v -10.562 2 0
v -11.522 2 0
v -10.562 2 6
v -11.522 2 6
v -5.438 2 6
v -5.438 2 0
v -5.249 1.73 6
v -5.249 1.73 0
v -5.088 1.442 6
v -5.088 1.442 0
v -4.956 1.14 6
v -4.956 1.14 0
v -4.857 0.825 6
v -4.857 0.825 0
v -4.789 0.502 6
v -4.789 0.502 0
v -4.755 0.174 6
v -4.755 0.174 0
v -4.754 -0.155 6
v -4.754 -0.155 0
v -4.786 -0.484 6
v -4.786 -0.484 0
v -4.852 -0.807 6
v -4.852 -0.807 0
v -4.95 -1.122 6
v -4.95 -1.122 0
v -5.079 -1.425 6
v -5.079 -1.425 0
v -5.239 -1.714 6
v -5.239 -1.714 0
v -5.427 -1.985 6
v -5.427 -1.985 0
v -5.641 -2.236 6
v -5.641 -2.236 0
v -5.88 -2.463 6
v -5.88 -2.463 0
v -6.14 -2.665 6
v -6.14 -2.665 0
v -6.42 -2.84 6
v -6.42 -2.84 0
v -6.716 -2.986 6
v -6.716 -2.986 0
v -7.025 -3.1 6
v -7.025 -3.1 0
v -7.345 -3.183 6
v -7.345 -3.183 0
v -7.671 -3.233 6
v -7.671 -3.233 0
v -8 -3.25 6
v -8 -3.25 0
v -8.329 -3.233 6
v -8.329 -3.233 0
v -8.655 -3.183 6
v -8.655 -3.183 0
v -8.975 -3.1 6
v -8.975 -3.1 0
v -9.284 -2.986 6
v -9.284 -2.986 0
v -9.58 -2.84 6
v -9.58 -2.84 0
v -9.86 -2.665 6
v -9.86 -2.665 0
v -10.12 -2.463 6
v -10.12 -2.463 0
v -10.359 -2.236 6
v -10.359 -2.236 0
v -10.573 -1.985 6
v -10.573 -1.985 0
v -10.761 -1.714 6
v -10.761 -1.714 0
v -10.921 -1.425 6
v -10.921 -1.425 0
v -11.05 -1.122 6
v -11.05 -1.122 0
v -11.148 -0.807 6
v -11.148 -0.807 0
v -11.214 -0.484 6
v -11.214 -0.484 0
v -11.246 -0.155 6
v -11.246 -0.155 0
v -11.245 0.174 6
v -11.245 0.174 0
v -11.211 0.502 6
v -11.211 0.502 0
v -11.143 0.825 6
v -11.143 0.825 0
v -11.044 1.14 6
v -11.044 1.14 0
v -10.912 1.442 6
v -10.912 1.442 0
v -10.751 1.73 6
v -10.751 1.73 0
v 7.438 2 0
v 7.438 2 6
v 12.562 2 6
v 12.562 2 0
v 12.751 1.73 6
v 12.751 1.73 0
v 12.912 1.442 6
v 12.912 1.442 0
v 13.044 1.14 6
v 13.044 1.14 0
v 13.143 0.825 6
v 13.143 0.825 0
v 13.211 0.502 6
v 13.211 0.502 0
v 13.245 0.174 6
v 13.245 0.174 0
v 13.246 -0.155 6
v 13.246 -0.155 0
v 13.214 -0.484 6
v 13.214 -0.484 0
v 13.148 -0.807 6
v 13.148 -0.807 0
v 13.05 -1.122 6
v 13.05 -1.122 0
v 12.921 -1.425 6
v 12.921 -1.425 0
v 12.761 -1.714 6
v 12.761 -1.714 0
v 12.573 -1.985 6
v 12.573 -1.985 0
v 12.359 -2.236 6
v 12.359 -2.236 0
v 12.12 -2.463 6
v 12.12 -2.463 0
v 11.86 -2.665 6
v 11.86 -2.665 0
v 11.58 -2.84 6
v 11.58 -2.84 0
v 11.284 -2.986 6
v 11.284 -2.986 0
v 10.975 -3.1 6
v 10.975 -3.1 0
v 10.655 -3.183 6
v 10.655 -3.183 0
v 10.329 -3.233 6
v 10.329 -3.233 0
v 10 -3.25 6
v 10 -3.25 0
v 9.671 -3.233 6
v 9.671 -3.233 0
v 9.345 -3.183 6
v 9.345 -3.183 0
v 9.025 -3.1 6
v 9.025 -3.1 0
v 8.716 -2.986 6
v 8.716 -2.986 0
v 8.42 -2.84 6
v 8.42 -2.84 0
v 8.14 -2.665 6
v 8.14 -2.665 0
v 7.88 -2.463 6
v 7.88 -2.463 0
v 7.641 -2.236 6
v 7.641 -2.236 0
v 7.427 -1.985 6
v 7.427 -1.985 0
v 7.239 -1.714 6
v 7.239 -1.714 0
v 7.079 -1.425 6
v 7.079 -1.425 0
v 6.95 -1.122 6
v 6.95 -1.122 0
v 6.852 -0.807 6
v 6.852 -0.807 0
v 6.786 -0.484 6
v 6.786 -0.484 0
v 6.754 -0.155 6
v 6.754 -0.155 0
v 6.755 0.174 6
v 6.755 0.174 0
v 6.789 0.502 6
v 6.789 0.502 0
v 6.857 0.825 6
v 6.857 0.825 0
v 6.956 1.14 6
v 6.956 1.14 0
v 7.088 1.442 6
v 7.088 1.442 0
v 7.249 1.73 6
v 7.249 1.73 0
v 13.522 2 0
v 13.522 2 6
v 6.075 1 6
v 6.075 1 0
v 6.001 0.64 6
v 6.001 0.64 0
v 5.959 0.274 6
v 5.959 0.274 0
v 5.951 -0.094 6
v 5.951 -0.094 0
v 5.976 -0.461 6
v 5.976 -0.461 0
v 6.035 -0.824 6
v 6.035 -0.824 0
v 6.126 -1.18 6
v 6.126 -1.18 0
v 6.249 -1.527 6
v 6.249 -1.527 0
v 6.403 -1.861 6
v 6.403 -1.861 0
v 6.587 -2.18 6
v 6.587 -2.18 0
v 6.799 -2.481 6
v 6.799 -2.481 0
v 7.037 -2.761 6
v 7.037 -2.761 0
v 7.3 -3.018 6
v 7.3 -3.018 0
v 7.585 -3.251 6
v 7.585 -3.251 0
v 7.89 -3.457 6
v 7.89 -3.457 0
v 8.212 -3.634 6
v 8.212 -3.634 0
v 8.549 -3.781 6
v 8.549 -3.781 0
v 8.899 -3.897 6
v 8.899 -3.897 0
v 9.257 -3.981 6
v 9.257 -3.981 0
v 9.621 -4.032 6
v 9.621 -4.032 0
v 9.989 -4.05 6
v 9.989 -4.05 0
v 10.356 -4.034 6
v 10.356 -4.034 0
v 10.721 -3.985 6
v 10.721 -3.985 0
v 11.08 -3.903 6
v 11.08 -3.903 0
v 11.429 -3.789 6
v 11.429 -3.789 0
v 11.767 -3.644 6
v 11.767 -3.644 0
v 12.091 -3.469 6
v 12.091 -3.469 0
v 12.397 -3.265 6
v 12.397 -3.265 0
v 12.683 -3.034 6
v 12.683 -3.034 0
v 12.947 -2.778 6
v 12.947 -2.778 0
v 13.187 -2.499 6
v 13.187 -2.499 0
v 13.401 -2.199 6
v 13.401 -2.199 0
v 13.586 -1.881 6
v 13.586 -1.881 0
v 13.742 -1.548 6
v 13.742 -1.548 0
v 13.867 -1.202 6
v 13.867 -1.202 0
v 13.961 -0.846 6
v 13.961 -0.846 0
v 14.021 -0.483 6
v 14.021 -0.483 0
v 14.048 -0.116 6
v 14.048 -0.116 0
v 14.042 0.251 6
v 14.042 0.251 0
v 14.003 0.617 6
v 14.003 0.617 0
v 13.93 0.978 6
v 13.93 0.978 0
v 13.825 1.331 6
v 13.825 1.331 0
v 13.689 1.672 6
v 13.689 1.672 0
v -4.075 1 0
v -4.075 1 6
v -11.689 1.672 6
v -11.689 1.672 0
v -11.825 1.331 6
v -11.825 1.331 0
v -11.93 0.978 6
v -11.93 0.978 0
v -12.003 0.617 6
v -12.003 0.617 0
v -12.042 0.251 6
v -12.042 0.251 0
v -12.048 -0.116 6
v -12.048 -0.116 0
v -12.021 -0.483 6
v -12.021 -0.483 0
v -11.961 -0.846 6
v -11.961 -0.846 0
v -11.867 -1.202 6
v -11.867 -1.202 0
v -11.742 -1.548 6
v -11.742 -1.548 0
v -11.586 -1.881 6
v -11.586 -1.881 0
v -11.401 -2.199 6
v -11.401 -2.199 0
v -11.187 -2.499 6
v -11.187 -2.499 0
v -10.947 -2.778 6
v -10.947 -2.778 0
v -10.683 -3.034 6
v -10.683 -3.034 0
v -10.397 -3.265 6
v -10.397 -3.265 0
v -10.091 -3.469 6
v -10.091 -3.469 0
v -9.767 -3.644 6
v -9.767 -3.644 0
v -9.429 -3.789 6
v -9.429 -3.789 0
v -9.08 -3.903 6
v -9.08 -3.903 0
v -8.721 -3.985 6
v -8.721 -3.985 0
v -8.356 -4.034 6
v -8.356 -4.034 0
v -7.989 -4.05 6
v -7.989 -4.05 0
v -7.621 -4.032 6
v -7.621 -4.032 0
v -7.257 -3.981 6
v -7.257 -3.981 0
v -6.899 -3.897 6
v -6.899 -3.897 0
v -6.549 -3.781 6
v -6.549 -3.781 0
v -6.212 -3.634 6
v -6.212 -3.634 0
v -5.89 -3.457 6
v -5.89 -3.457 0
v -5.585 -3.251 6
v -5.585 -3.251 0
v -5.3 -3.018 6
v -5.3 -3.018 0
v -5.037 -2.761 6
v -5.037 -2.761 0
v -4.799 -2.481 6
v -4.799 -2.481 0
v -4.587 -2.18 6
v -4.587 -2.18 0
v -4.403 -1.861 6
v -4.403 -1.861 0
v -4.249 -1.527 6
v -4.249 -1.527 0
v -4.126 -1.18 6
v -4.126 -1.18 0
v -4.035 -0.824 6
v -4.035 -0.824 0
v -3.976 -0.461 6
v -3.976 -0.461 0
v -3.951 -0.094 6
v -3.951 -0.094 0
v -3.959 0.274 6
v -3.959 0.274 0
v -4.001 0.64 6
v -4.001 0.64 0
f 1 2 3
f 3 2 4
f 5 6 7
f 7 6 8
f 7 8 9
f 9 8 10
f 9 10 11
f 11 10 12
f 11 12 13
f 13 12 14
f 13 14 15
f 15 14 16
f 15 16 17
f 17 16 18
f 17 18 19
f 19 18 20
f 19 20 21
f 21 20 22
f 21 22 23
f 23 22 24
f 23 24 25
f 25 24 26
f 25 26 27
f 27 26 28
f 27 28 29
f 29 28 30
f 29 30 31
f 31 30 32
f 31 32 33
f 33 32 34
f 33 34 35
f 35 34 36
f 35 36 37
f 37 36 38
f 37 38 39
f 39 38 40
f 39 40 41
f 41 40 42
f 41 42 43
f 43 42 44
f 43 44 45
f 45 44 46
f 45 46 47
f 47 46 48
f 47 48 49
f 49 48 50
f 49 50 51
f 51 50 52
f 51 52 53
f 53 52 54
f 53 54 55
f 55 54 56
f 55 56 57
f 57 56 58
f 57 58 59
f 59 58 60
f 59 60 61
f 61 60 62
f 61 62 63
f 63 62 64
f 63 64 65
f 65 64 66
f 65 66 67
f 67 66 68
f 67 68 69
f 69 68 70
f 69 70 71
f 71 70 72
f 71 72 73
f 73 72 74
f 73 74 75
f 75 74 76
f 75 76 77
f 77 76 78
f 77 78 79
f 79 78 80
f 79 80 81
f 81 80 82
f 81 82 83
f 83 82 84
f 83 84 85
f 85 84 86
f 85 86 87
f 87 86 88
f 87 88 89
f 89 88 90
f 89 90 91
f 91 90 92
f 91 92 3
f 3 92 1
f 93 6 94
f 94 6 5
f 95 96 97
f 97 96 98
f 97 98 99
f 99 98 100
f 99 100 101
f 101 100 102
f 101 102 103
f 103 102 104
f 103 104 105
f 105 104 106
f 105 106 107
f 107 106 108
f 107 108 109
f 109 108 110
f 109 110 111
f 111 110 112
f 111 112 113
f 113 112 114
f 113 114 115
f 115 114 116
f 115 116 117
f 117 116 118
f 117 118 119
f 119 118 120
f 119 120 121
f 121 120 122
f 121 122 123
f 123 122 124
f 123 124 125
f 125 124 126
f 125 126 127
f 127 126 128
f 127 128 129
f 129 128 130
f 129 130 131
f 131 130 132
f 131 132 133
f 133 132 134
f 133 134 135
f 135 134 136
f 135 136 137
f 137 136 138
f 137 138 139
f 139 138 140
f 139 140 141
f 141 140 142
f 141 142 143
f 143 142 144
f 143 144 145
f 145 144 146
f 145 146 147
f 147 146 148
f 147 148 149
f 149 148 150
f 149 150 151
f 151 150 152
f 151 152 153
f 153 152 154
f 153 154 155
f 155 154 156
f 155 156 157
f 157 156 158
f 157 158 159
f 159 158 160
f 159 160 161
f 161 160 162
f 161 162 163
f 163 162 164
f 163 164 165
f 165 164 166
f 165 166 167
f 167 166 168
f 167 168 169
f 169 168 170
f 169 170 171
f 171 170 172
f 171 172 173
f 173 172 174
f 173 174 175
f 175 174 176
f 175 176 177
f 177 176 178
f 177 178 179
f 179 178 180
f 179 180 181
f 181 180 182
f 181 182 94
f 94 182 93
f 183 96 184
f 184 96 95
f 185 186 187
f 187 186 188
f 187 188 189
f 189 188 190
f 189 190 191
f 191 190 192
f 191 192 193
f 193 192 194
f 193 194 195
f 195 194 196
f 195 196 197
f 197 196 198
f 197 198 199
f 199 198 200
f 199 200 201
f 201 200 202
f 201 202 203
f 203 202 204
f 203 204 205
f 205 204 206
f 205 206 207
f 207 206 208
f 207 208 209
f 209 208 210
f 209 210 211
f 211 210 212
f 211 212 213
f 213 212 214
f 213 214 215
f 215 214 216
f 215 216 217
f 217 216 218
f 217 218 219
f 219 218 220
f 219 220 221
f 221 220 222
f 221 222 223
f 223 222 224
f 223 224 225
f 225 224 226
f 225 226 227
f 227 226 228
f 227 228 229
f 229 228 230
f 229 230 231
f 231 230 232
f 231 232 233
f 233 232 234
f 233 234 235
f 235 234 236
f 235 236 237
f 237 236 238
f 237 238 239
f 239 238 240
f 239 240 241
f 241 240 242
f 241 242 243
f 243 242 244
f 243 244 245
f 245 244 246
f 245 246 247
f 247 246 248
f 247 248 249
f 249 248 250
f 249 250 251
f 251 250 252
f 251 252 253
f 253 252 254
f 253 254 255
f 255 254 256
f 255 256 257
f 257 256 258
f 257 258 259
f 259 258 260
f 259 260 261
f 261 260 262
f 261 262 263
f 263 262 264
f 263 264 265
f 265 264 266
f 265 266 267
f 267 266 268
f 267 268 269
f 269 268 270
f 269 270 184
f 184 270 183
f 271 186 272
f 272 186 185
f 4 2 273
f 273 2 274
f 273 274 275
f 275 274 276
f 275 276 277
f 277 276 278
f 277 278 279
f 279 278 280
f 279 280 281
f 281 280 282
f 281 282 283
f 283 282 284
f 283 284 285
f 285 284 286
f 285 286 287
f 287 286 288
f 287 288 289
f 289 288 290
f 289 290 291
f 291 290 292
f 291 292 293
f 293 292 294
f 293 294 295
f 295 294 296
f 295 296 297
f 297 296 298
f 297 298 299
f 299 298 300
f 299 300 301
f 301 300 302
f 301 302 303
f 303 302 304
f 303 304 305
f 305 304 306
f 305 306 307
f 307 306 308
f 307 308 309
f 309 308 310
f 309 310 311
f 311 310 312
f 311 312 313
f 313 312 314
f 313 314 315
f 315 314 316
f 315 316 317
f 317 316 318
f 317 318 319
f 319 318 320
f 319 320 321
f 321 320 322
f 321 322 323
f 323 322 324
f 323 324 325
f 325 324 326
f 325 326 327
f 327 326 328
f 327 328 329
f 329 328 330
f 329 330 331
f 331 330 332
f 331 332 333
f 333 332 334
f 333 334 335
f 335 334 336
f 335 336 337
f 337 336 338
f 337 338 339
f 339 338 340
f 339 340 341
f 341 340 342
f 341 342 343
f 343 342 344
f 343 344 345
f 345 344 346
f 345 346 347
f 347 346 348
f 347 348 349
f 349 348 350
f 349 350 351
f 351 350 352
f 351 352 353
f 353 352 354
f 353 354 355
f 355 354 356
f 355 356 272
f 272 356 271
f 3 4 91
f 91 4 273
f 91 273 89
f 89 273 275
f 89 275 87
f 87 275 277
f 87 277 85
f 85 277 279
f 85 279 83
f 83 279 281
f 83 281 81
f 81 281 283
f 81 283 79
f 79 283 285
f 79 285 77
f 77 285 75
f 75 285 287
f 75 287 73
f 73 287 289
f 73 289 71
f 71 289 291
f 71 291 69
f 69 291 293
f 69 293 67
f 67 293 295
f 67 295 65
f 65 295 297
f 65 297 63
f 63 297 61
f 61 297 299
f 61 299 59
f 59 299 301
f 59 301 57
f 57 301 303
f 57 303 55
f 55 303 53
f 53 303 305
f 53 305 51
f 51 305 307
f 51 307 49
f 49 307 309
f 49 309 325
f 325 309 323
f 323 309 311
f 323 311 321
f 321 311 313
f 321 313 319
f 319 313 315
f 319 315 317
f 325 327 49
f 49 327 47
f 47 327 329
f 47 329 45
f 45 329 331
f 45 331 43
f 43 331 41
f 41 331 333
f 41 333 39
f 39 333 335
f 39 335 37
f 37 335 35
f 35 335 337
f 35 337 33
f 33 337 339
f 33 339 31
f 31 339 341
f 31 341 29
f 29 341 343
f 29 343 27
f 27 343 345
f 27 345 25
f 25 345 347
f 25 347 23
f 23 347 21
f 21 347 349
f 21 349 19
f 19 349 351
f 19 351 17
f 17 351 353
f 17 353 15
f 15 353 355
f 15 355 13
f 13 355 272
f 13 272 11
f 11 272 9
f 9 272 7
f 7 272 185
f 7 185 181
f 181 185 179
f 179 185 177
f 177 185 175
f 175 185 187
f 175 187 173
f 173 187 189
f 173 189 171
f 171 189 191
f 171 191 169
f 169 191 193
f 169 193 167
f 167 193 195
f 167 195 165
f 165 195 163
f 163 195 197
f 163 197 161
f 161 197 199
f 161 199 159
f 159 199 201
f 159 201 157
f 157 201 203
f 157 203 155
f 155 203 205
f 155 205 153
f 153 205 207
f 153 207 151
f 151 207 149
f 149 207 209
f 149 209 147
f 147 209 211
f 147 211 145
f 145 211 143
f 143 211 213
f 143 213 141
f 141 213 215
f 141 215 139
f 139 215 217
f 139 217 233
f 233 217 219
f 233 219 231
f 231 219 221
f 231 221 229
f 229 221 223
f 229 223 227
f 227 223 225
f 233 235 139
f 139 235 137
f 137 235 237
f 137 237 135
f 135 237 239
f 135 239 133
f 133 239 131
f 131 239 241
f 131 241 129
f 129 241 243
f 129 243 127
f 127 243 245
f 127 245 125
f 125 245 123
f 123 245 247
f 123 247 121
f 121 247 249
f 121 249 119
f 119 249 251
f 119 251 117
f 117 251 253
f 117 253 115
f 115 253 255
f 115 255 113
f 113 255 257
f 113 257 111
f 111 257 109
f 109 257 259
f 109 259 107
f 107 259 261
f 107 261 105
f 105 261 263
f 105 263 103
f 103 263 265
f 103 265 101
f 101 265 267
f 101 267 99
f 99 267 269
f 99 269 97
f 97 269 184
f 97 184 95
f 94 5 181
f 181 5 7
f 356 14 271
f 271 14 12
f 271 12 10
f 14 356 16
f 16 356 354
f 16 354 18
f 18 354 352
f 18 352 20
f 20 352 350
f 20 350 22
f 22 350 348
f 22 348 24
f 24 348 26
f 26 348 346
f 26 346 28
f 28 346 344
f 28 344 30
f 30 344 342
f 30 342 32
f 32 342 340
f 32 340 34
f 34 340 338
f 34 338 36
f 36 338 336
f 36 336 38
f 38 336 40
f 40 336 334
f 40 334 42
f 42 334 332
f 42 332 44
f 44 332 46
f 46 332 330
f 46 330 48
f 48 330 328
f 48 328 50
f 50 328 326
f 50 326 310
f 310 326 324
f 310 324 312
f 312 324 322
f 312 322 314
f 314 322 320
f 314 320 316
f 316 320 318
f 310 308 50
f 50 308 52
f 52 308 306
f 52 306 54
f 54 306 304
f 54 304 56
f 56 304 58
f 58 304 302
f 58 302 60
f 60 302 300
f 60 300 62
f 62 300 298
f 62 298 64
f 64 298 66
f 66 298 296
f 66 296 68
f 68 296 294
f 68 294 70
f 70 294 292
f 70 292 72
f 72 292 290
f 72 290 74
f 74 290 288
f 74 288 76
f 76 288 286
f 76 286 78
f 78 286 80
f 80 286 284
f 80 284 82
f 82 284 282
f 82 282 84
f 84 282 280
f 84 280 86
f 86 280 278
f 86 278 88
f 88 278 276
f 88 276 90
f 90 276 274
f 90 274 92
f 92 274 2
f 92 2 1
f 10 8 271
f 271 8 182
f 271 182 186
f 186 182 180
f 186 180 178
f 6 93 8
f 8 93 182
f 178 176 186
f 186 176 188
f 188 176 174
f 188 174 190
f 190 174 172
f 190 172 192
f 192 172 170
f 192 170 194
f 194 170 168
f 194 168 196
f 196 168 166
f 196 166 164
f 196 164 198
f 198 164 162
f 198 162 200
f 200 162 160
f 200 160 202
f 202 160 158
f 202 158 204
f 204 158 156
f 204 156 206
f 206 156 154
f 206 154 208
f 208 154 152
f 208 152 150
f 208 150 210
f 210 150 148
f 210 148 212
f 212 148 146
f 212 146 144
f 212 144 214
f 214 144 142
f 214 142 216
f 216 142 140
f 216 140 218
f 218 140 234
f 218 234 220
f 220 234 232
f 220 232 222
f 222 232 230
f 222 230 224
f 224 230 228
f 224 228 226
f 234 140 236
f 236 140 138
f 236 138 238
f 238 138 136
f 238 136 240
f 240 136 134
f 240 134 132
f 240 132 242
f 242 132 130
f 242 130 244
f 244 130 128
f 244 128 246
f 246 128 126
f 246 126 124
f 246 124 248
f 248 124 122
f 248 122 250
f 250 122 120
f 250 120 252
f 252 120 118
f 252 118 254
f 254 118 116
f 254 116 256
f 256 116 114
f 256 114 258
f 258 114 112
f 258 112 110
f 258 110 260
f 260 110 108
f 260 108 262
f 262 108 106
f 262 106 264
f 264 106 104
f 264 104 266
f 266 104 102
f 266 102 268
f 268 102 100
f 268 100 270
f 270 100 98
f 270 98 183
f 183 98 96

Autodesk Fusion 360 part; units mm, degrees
sketch "スケッチ1" plane through (0, 0, 0) normal (0, 0, 1) x (1, 0, 0)
  arc A0 (-11.5217, 2) -> (-4.0754, 1) centre (-8, 0) ccw
  arc A1 (-10.5617, 2) -> (-5.4383, 2) centre (-8, 0) ccw
  line L0 (-11.5217, 2) -> (-10.5617, 2)
  line L1 (-6, 1) -> (-4.9077, 1)
  line L2 (-4.0754, 1) -> (6.0754, 1)
  arc A2 (6.0754, 1) -> (13.5217, 2) centre (10, 0) ccw
  arc A3 (7.4383, 2) -> (12.5617, 2) centre (10, 0) ccw
  line L3 (-5.4383, 2) -> (7.4383, 2)
  line L4 (12.5617, 2) -> (13.5217, 2)
  dimension "d7" = 6.5
  dimension "d8" = 6.5
extrude "押し出し3" add sketch "スケッチ1" along normal blind 6
extrude "押し出し2" [suppressed]
